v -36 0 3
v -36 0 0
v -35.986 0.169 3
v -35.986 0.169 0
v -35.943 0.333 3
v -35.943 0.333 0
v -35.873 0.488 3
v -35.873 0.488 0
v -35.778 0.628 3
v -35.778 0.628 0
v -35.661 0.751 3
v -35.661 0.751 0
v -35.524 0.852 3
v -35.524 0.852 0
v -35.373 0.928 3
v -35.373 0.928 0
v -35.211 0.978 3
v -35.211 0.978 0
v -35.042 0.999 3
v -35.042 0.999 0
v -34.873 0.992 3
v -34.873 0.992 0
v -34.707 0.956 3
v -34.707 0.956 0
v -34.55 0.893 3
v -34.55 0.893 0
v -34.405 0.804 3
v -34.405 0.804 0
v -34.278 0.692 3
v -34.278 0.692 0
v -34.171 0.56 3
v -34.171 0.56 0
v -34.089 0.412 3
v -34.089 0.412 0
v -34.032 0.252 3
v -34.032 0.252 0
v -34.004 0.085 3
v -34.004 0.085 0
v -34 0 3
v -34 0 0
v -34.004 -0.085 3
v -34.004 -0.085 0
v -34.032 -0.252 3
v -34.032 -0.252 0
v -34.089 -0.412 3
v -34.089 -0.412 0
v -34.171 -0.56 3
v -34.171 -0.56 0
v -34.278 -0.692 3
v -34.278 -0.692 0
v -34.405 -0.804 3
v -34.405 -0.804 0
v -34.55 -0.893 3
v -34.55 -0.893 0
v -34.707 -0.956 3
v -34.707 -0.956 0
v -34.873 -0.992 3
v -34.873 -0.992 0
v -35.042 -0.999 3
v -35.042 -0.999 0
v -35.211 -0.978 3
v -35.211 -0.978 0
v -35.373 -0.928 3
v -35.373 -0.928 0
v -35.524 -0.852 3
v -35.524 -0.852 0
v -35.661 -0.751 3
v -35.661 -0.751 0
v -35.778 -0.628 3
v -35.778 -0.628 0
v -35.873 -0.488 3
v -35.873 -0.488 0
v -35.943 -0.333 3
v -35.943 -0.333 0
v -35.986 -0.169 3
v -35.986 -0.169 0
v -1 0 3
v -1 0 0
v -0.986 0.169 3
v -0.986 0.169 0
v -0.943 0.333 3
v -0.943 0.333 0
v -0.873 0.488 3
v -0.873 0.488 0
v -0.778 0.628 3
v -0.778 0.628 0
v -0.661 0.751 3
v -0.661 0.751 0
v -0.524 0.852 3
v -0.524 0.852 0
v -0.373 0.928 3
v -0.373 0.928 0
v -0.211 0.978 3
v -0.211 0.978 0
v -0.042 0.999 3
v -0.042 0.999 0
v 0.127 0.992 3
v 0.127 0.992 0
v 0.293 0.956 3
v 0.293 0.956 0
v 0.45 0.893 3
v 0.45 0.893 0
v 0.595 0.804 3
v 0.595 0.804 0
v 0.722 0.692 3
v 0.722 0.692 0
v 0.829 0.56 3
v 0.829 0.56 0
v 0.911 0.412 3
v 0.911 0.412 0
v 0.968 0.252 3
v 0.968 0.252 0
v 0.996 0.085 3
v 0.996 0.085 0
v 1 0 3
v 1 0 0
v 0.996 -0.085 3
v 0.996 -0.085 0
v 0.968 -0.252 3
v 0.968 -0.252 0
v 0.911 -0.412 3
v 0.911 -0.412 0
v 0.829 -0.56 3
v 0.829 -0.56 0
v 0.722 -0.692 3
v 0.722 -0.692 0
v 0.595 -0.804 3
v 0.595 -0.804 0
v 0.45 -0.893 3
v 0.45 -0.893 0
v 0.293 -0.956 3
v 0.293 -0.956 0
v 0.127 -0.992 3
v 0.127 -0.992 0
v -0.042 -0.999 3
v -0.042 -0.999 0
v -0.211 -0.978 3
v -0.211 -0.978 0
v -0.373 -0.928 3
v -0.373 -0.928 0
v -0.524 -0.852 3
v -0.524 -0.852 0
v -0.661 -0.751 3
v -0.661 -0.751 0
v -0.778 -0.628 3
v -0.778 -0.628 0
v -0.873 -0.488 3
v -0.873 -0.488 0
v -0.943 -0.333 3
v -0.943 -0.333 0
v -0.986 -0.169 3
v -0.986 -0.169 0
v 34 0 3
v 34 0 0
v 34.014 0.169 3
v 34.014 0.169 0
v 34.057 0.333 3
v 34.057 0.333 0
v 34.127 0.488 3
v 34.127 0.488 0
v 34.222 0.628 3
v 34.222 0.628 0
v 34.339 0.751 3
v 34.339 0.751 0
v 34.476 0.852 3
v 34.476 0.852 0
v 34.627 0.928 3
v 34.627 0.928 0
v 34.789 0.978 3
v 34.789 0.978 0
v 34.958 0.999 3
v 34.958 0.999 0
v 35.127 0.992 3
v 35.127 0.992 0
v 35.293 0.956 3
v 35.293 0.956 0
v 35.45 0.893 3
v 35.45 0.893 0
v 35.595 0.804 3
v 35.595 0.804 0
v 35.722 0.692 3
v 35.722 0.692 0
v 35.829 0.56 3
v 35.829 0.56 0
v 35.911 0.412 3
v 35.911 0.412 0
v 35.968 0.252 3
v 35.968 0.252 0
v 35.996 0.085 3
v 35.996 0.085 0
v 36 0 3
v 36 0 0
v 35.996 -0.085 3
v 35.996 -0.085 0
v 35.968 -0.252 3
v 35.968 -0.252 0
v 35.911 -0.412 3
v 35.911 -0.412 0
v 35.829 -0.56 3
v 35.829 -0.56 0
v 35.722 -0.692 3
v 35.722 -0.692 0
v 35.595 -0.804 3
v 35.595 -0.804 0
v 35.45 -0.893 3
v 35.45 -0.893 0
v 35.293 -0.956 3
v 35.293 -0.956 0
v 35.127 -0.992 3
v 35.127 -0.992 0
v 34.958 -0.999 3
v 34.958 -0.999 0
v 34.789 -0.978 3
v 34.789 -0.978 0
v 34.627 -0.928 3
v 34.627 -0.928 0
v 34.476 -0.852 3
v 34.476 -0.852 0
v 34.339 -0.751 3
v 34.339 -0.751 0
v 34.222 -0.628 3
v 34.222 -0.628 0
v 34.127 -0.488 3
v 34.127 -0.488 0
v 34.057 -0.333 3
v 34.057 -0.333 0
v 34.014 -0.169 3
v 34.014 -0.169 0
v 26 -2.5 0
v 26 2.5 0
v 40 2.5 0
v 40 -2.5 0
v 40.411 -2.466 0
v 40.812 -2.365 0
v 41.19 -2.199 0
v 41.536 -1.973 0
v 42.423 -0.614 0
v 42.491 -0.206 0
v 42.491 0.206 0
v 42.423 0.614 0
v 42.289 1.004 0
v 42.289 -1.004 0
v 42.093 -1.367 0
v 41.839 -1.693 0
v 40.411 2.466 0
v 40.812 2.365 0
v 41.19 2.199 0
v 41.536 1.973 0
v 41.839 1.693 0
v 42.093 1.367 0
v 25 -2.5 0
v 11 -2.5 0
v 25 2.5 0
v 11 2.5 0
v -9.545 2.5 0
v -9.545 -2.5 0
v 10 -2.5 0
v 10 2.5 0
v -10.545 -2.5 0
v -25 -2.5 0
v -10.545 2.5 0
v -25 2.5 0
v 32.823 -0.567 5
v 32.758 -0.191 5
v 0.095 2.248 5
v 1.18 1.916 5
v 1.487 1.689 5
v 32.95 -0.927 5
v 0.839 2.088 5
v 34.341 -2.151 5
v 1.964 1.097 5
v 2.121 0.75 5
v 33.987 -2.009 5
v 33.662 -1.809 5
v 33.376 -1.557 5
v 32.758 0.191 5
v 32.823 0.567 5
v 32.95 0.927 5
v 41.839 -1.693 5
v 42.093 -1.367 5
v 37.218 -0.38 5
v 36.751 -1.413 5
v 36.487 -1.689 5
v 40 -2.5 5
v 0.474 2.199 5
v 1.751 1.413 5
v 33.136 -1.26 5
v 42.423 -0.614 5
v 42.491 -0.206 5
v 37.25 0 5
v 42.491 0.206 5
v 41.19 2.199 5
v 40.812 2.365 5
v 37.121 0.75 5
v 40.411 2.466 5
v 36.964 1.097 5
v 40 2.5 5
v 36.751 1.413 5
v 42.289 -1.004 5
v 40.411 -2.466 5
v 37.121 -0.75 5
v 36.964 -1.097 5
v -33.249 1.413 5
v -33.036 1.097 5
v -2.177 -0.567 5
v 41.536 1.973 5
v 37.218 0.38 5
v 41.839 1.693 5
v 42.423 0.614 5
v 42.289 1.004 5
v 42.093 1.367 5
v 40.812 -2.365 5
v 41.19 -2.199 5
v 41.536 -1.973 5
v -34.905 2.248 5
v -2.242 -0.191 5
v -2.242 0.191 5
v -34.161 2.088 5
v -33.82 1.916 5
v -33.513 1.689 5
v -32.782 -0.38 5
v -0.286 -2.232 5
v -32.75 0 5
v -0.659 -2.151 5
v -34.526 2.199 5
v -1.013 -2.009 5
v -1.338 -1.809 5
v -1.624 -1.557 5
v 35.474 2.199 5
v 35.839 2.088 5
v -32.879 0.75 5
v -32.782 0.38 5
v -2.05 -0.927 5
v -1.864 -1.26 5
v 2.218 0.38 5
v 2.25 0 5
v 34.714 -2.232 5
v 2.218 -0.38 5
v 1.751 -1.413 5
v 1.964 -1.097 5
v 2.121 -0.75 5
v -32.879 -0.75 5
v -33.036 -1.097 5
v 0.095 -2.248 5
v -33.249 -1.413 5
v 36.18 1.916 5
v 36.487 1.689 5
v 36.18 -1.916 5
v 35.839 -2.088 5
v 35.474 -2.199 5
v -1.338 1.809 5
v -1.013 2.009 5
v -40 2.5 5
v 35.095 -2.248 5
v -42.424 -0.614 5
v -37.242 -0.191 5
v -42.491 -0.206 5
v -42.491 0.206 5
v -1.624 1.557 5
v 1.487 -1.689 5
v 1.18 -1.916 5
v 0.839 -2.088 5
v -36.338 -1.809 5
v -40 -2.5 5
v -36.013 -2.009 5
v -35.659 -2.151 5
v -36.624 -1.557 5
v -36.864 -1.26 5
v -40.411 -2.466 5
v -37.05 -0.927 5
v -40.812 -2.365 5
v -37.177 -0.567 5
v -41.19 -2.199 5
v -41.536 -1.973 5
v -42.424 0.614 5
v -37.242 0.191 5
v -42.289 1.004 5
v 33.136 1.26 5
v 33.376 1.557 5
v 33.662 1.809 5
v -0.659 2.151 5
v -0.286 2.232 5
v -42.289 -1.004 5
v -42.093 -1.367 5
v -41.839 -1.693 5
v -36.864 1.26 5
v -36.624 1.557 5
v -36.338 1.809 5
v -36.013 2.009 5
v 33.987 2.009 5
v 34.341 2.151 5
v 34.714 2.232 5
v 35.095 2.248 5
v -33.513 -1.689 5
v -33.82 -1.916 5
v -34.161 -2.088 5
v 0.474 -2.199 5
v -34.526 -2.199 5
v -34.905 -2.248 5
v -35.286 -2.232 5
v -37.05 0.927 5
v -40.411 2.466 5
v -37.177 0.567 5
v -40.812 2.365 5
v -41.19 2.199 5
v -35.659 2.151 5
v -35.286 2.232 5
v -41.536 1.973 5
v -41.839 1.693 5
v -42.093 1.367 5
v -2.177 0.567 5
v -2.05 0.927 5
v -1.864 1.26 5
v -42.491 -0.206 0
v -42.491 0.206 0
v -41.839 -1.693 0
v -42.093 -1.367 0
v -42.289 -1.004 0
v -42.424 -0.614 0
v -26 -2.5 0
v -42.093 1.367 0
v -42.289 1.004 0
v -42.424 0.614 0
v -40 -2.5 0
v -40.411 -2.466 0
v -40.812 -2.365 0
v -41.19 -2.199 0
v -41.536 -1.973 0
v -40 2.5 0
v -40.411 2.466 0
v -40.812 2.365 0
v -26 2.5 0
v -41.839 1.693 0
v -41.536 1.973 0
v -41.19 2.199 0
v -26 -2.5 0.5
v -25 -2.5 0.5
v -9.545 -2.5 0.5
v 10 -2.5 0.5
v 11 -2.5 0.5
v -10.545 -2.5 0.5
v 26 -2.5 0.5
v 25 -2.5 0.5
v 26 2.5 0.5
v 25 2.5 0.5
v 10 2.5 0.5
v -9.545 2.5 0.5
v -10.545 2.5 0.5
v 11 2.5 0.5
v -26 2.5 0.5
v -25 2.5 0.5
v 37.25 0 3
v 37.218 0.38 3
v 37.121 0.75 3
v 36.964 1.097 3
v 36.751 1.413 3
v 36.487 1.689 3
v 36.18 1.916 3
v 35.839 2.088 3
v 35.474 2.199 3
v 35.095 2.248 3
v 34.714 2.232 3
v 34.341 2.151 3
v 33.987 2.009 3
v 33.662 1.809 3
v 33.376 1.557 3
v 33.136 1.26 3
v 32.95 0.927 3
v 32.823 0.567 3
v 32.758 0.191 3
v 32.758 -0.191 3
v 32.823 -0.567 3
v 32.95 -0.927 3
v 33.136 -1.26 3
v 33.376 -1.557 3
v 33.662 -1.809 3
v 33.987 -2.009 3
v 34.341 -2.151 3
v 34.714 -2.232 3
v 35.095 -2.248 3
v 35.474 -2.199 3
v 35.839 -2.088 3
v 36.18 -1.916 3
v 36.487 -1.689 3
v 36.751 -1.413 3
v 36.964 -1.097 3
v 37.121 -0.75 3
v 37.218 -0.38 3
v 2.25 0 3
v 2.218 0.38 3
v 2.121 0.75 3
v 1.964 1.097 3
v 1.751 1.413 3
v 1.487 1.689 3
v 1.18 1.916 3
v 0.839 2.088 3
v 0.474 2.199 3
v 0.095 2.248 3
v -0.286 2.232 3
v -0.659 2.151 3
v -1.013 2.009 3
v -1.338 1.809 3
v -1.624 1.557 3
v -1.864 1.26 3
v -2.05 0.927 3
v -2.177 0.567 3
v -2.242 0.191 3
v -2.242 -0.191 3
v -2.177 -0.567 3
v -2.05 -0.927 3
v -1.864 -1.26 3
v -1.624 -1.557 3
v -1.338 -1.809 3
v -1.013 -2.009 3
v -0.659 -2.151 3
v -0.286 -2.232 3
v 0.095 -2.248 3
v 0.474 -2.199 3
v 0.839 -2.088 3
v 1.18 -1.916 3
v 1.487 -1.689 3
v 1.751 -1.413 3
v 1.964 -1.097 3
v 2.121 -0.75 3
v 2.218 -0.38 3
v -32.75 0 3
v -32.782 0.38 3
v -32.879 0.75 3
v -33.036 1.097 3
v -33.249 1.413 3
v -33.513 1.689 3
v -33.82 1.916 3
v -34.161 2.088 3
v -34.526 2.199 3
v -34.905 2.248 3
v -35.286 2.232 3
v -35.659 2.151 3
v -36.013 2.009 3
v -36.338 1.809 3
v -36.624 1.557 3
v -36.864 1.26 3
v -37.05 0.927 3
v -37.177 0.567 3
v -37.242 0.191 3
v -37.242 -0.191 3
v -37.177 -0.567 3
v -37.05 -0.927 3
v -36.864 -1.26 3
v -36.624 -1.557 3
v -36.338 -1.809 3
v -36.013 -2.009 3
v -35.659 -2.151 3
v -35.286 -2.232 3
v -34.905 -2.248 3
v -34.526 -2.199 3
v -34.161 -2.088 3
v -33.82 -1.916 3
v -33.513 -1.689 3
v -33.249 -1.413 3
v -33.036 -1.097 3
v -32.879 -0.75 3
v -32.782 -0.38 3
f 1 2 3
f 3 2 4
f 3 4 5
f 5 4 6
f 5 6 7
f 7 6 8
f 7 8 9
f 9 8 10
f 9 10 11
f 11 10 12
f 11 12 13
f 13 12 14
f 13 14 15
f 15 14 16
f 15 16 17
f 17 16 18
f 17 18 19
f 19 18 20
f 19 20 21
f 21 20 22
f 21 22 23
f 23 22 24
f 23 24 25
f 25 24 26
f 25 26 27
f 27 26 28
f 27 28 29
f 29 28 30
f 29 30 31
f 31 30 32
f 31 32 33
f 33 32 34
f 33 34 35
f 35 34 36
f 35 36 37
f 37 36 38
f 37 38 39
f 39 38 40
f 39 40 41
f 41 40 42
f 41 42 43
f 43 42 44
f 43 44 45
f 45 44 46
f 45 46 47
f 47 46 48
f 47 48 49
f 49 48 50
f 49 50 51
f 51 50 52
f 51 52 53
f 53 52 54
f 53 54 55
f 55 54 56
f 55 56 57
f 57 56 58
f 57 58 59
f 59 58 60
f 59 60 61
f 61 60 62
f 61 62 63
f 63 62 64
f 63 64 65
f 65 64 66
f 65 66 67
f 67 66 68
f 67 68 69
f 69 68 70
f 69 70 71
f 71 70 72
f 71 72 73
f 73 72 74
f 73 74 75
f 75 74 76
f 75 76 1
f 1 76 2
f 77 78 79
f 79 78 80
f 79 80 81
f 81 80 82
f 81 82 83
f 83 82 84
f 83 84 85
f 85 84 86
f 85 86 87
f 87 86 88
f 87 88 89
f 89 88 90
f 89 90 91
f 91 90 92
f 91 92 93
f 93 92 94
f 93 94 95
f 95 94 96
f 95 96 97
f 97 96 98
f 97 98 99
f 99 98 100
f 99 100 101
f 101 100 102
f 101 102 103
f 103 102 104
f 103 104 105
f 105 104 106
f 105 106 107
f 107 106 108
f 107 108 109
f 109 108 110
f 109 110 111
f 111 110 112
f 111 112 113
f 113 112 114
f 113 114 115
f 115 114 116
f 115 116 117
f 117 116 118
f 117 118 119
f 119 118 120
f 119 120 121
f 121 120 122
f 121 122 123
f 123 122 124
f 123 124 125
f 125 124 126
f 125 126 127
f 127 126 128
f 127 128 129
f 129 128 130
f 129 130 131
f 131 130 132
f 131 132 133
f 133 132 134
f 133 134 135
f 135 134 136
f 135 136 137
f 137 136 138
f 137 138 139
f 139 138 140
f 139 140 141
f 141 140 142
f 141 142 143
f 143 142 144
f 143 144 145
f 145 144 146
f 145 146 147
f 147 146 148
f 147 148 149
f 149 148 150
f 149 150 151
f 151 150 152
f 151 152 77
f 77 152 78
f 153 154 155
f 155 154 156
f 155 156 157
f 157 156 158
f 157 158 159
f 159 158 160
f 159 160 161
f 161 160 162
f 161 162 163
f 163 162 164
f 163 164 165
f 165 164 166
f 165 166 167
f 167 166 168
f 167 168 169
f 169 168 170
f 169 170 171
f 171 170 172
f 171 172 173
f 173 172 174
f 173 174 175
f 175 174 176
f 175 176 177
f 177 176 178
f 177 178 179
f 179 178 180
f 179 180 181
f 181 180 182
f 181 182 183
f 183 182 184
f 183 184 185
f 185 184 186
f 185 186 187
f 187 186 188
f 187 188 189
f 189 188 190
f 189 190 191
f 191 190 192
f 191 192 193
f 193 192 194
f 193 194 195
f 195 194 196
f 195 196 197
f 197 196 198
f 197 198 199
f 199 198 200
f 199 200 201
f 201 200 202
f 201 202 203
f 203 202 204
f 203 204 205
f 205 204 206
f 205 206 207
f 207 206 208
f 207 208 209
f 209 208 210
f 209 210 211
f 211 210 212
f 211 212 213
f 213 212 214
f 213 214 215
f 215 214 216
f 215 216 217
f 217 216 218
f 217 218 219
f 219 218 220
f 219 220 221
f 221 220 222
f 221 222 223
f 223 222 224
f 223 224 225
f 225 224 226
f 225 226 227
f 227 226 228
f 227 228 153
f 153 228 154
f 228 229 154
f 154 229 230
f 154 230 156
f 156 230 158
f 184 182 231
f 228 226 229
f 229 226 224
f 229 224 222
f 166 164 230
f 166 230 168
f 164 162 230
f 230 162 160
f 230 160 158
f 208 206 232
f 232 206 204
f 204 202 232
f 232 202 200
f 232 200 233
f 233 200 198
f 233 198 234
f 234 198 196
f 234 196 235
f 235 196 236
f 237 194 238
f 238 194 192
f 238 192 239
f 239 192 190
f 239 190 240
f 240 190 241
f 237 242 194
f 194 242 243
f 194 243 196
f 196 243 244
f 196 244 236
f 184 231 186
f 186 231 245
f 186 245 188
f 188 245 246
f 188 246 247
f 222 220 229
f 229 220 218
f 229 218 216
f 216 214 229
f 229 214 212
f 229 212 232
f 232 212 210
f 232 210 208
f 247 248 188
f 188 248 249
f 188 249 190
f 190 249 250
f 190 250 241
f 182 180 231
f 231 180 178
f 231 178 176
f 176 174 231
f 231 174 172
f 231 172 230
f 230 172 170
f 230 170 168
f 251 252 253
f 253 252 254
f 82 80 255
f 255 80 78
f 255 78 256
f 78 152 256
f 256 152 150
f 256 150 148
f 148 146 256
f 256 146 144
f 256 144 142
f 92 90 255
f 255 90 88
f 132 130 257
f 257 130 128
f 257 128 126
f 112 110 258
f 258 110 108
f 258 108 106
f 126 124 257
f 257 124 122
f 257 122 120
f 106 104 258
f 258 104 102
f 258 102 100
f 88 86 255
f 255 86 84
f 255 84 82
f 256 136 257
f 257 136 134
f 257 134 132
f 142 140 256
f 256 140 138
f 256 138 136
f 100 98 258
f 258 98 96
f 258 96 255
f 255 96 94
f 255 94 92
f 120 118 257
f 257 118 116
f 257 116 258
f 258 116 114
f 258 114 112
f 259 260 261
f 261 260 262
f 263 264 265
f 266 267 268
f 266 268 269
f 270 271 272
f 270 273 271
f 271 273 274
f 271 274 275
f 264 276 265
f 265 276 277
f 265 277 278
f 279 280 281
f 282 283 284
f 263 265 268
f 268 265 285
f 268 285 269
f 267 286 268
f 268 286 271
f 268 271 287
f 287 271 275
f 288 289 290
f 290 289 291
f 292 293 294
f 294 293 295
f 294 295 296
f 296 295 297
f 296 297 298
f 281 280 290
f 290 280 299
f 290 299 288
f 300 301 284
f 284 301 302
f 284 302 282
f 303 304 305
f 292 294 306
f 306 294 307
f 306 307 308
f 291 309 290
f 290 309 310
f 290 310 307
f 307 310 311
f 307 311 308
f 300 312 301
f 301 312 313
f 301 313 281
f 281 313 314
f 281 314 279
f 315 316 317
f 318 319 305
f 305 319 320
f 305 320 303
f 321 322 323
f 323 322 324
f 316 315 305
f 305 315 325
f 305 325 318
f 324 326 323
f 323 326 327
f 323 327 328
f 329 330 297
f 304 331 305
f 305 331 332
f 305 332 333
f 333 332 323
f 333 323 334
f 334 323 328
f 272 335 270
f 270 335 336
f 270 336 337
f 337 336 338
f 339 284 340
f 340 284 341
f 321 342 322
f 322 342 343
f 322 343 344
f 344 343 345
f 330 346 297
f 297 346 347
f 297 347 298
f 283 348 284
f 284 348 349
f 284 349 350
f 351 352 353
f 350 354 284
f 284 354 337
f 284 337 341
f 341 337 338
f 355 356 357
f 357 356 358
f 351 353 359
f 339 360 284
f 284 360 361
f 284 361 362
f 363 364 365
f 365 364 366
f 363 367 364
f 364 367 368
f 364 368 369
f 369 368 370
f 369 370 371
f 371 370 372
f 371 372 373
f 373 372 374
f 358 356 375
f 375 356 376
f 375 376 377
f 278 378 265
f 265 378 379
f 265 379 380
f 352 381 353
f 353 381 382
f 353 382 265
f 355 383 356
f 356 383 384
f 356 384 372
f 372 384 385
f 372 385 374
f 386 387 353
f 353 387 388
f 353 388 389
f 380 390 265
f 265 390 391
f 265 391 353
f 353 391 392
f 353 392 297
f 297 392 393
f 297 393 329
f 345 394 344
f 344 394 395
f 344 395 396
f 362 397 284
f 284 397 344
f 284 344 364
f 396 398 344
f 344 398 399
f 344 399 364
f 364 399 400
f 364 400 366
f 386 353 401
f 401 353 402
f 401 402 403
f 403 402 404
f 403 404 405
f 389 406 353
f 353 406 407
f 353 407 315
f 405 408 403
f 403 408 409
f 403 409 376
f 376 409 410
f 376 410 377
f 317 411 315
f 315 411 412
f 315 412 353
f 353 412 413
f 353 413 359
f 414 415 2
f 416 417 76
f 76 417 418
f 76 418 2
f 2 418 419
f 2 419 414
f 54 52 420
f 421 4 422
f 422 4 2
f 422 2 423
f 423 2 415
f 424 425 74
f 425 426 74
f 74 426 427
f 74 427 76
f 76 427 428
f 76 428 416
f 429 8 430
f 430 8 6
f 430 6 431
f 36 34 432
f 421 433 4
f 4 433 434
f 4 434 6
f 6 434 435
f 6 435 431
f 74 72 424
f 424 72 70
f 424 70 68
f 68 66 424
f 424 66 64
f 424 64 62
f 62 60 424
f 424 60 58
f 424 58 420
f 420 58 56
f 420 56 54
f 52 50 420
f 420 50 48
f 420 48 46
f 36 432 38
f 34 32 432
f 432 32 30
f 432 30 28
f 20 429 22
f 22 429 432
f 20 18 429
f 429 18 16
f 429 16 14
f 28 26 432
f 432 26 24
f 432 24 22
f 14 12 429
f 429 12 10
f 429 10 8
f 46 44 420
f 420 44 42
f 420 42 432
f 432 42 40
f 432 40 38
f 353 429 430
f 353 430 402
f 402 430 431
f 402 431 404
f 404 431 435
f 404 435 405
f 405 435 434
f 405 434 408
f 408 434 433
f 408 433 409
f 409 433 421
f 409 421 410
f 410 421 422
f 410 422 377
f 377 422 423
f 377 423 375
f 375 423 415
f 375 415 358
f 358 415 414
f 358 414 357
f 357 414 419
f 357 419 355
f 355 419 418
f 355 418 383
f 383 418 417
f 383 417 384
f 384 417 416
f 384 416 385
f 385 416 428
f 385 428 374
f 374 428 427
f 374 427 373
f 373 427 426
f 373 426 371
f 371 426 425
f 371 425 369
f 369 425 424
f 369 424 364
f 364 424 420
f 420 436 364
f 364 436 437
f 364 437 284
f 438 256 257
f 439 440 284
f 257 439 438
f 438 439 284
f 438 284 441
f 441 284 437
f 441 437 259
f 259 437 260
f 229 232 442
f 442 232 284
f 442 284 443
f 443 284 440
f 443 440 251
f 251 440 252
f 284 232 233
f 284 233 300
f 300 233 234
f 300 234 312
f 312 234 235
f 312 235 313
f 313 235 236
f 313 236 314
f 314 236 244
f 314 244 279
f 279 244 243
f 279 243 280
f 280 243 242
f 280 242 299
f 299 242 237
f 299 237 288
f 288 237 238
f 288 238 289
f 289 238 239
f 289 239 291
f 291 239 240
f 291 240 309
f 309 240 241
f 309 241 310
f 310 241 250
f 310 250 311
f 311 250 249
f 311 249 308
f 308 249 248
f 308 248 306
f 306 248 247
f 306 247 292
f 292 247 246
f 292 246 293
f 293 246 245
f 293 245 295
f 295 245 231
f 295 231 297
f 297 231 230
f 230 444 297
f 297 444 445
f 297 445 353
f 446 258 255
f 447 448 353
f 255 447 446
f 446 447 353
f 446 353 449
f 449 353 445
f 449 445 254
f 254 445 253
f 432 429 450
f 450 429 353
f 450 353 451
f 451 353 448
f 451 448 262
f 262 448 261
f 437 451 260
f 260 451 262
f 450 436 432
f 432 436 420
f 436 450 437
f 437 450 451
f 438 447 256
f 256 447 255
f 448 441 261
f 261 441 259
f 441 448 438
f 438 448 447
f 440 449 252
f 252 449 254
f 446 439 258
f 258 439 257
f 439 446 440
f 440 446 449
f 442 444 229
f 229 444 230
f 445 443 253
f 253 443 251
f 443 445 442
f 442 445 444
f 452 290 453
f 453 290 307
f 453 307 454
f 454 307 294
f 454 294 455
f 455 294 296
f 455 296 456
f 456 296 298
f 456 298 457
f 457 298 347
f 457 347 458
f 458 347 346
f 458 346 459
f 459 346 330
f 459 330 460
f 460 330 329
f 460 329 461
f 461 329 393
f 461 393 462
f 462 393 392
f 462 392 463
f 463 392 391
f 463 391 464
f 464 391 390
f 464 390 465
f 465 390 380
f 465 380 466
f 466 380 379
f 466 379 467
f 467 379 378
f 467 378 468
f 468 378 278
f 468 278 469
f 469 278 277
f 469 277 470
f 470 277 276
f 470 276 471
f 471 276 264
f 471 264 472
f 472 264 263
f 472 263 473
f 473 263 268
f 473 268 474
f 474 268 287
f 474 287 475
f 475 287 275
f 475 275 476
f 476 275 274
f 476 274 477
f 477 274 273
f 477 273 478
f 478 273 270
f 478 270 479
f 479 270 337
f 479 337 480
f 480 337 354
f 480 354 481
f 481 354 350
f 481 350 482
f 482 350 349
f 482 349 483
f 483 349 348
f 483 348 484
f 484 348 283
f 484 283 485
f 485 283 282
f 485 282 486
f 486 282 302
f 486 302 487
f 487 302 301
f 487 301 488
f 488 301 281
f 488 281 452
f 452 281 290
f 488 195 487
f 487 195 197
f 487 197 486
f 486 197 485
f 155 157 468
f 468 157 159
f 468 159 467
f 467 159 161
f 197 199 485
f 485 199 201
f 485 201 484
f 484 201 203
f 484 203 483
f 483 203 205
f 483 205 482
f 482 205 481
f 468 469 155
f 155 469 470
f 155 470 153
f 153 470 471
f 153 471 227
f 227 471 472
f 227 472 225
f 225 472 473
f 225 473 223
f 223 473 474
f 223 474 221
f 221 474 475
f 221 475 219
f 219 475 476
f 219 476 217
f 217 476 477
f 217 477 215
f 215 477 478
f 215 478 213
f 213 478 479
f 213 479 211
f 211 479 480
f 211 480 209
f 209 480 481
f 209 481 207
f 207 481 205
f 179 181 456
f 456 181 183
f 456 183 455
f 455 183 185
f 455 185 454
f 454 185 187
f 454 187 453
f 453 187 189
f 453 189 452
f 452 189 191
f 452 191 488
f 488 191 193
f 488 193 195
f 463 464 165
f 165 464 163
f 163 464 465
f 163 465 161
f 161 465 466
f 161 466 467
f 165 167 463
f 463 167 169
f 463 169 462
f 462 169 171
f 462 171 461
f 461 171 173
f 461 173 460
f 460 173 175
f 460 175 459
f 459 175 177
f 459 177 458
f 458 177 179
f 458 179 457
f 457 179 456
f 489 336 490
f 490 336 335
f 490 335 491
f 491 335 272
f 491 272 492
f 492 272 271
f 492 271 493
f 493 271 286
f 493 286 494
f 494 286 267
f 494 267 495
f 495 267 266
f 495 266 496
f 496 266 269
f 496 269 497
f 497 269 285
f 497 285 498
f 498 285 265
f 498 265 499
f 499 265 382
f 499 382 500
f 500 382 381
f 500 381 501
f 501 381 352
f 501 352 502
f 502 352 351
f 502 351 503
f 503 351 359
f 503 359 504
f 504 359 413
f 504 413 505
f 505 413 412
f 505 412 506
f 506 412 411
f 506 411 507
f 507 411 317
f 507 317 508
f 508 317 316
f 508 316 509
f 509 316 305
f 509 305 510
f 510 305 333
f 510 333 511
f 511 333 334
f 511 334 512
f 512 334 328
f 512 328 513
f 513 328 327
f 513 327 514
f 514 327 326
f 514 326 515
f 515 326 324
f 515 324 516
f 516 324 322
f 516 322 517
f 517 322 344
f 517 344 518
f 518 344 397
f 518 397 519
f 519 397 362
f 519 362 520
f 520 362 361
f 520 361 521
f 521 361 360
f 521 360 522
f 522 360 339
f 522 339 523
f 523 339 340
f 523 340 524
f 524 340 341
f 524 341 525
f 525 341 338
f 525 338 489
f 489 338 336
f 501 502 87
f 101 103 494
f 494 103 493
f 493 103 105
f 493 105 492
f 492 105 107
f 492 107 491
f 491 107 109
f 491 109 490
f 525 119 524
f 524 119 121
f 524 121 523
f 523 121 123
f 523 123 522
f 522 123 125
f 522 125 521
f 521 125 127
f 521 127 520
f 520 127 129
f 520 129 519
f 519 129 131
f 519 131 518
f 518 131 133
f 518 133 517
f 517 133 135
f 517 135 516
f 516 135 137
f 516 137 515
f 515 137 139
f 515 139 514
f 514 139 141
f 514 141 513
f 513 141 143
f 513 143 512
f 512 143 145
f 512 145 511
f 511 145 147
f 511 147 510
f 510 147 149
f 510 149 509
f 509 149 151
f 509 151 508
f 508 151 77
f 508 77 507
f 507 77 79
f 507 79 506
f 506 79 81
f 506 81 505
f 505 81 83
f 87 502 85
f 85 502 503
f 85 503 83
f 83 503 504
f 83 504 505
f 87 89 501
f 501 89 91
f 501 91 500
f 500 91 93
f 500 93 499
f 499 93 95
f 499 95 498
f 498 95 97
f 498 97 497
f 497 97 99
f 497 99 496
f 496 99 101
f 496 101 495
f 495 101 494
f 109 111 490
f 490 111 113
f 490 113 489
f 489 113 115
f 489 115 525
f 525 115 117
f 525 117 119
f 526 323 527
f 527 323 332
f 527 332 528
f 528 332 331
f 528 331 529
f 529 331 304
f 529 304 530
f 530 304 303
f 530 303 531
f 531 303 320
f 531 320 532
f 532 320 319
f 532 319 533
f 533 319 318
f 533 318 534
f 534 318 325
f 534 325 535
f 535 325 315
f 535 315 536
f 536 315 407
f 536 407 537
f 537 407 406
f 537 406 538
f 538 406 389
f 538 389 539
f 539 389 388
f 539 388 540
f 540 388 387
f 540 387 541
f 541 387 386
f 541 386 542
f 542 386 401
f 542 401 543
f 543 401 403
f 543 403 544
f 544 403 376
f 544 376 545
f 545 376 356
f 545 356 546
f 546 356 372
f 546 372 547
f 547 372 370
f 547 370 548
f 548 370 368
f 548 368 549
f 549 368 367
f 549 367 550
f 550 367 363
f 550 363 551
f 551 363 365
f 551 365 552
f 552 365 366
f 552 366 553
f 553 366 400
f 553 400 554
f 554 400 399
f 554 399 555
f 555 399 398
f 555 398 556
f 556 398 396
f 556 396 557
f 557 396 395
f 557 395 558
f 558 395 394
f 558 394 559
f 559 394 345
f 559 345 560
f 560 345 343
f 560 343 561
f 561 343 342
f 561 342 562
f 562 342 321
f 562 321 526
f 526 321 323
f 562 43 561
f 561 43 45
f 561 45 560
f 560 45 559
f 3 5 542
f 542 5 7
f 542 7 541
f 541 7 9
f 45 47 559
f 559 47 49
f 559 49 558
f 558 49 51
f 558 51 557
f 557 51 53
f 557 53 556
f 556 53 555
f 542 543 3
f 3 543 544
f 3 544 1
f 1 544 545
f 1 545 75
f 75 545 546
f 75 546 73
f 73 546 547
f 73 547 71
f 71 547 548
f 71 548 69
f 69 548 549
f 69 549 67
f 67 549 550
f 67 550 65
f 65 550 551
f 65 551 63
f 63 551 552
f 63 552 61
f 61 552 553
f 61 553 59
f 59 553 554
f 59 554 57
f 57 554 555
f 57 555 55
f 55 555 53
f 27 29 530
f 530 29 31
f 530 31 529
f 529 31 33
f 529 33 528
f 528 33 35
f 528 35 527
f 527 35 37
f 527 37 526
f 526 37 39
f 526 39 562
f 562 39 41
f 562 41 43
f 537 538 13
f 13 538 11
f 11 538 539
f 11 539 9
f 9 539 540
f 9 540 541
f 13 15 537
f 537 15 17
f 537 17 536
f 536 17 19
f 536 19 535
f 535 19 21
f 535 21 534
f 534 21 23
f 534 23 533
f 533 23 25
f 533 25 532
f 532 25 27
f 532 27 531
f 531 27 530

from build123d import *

# Parameters (mm, degrees)
SKETCH_1_R          = 1
EXTRUDE_1_DEPTH     = 5
SKETCH_2_W          = 1
SKETCH_2_H          = 5
CUT_EXTRUDE_1_DEPTH = 0.5
SKETCH_3_R          = 2.25
CUT_EXTRUDE_3_DEPTH = 2


with BuildPart() as part:
    # 草图1 → 凸台-拉伸1 (new body)
    with BuildSketch(Plane.XY):
        with BuildLine():
            Line((-40, 2.5), (40, 2.5))
            ThreePointArc((40, 2.5), (42.500000092, 0), (40, -2.5))
            Line((40, -2.5), (-40, -2.5))
            ThreePointArc((-40, -2.5), (-42.5, 0), (-40, 2.5))
        make_face()
        with Locations((-35, 0)):
            Circle(SKETCH_1_R, mode=Mode.SUBTRACT)
        Circle(SKETCH_1_R, mode=Mode.SUBTRACT)
        with Locations((35, 0)):
            Circle(SKETCH_1_R, mode=Mode.SUBTRACT)
    extrude(amount=EXTRUDE_1_DEPTH)

    # 草图2 → 切除-拉伸1 (cut)
    with BuildSketch(Plane(origin=(0, 0, 0), x_dir=(-1, 0, 0), z_dir=(0, 0, -1))):
        with Locations((-25.5, 0)):
            Rectangle(SKETCH_2_W, SKETCH_2_H)
        with Locations((-10.5, 0)):
            Rectangle(SKETCH_2_W, SKETCH_2_H)
        with Locations((10.044565055, 0)):
            Rectangle(SKETCH_2_W, SKETCH_2_H)
        with Locations((25.5, 0)):
            Rectangle(SKETCH_2_W, SKETCH_2_H)
    extrude(amount=-CUT_EXTRUDE_1_DEPTH, mode=Mode.SUBTRACT)

    # 草图3 → 切除-拉伸3 (cut)
    with BuildSketch(Plane.XY.offset(5)):
        with Locations((-35, 0)):
            Circle(SKETCH_3_R)
        Circle(SKETCH_3_R)
        with Locations((35, 0)):
            Circle(SKETCH_3_R)
    extrude(amount=-CUT_EXTRUDE_3_DEPTH, mode=Mode.SUBTRACT)


solid = part.part
